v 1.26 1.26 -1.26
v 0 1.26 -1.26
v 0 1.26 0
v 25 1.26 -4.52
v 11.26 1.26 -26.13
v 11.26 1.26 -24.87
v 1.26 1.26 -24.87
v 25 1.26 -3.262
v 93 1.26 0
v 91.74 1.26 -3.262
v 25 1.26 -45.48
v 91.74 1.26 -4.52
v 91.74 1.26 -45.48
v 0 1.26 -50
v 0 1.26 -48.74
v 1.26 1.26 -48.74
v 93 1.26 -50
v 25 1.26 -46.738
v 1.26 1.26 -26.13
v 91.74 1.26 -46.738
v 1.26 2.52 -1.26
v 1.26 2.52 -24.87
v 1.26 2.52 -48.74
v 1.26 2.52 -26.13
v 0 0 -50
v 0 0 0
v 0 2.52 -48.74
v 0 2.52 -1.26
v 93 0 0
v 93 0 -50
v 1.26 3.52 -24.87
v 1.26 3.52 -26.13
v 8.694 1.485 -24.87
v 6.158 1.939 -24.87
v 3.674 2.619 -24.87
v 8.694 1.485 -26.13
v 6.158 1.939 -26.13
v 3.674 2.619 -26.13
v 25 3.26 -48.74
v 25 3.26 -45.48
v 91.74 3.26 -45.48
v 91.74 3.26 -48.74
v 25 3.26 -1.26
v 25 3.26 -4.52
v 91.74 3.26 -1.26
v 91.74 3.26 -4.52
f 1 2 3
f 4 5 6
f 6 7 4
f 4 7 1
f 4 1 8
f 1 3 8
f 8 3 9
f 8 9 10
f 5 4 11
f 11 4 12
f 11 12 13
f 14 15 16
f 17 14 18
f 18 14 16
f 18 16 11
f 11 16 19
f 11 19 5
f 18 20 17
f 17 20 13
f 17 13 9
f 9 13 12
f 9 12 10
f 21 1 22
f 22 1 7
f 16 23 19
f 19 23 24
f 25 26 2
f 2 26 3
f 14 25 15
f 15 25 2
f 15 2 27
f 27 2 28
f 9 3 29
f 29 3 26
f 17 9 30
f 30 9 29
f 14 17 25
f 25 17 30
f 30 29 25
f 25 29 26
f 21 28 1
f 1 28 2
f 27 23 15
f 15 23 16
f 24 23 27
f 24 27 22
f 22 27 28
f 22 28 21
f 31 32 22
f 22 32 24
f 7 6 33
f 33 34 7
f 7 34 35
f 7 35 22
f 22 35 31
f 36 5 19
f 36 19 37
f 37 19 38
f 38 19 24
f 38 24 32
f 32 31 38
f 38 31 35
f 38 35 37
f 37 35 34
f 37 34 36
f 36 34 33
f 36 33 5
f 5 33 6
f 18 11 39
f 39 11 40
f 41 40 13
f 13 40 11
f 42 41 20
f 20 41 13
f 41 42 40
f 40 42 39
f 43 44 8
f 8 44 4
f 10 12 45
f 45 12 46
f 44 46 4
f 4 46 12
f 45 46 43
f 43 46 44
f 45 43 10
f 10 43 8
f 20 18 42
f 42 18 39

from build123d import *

# Parameters (mm, degrees)
ESBO_O1_W                = 93
ESBO_O1_H                = 50
RESSALTO_EXTRUS_O1_DEPTH = 1.26
ESBO_O2_W                = 1.26
ESBO_O2_H                = 47.48
RESSALTO_EXTRUS_O2_DEPTH = 1.26
ESBO_O3_W                = 10
ESBO_O3_H                = 1.26
RESSALTO_EXTRUS_O3_DEPTH = 2.26
CORTE_EXTRUS_O1_DEPTH    = 1.26
ESBO_O5_W                = 66.74
ESBO_O5_H                = 3.26
RESSALTO_EXTRUS_O4_DEPTH = 2
CORTE_EXTRUS_O3_DEPTH    = 72


with BuildPart() as part:
    # Esboço1 → Ressalto-extrusão1 (new body)
    with BuildSketch(Plane(origin=(0, 0, 0), x_dir=(1, 0, 0), z_dir=(0, 1, 0))):
        with Locations((46.5, 25)):
            Rectangle(ESBO_O1_W, ESBO_O1_H)
    extrude(amount=RESSALTO_EXTRUS_O1_DEPTH)

    # Esboço2 → Ressalto-extrusão2 (add)
    with BuildSketch(Plane(origin=(0, 1.26, 0), x_dir=(1, 0, 0), z_dir=(0, 1, 0))):
        with Locations((0.63, 25)):
            Rectangle(ESBO_O2_W, ESBO_O2_H)
    extrude(amount=RESSALTO_EXTRUS_O2_DEPTH)

    # Esboço3 → Ressalto-extrusão3 (add)
    with BuildSketch(Plane(origin=(0, 1.26, 0), x_dir=(1, 0, 0), z_dir=(0, 1, 0))):
        with Locations((6.26, 25.5)):
            Rectangle(ESBO_O3_W, ESBO_O3_H)
    extrude(amount=RESSALTO_EXTRUS_O3_DEPTH)

    # Esboço4 → Corte-extrusão1 (cut)
    with BuildSketch(Plane.XY.offset(-24.87)):
        with BuildLine():
            Line((1.26, 3.52), (11.26, 3.52))
            Line((11.26, 3.52), (11.26, 1.26))
            ThreePointArc((11.26, 1.26), (6.158122993, 1.939216781), (1.26, 3.52))
        make_face()
    extrude(amount=-CORTE_EXTRUS_O1_DEPTH, mode=Mode.SUBTRACT)

    # Esboço5 → Ressalto-extrusão4 (add)
    with BuildSketch(Plane(origin=(0, 1.26, 0), x_dir=(1, 0, 0), z_dir=(0, 1, 0))):
        with Locations((58.37, 2.89)):
            Rectangle(ESBO_O5_W, ESBO_O5_H)
        with Locations((58.37, 47.11)):
            Rectangle(ESBO_O5_W, ESBO_O5_H)
    extrude(amount=RESSALTO_EXTRUS_O4_DEPTH)

    # Esboço6 → Corte-extrusão3 (cut)
    with BuildSketch(Plane(origin=(91.74, 0, 0), x_dir=(0, 0, -1), z_dir=(1, 0, 0))):
        Polygon((3.262223764, 1.26), (1.26, 3.26), (1.26, 1.26), align=None)
        Polygon((46.737776236, 1.26), (48.74, 3.26), (48.74, 1.26), align=None)
    extrude(amount=-CORTE_EXTRUS_O3_DEPTH, mode=Mode.SUBTRACT)


solid = part.part
